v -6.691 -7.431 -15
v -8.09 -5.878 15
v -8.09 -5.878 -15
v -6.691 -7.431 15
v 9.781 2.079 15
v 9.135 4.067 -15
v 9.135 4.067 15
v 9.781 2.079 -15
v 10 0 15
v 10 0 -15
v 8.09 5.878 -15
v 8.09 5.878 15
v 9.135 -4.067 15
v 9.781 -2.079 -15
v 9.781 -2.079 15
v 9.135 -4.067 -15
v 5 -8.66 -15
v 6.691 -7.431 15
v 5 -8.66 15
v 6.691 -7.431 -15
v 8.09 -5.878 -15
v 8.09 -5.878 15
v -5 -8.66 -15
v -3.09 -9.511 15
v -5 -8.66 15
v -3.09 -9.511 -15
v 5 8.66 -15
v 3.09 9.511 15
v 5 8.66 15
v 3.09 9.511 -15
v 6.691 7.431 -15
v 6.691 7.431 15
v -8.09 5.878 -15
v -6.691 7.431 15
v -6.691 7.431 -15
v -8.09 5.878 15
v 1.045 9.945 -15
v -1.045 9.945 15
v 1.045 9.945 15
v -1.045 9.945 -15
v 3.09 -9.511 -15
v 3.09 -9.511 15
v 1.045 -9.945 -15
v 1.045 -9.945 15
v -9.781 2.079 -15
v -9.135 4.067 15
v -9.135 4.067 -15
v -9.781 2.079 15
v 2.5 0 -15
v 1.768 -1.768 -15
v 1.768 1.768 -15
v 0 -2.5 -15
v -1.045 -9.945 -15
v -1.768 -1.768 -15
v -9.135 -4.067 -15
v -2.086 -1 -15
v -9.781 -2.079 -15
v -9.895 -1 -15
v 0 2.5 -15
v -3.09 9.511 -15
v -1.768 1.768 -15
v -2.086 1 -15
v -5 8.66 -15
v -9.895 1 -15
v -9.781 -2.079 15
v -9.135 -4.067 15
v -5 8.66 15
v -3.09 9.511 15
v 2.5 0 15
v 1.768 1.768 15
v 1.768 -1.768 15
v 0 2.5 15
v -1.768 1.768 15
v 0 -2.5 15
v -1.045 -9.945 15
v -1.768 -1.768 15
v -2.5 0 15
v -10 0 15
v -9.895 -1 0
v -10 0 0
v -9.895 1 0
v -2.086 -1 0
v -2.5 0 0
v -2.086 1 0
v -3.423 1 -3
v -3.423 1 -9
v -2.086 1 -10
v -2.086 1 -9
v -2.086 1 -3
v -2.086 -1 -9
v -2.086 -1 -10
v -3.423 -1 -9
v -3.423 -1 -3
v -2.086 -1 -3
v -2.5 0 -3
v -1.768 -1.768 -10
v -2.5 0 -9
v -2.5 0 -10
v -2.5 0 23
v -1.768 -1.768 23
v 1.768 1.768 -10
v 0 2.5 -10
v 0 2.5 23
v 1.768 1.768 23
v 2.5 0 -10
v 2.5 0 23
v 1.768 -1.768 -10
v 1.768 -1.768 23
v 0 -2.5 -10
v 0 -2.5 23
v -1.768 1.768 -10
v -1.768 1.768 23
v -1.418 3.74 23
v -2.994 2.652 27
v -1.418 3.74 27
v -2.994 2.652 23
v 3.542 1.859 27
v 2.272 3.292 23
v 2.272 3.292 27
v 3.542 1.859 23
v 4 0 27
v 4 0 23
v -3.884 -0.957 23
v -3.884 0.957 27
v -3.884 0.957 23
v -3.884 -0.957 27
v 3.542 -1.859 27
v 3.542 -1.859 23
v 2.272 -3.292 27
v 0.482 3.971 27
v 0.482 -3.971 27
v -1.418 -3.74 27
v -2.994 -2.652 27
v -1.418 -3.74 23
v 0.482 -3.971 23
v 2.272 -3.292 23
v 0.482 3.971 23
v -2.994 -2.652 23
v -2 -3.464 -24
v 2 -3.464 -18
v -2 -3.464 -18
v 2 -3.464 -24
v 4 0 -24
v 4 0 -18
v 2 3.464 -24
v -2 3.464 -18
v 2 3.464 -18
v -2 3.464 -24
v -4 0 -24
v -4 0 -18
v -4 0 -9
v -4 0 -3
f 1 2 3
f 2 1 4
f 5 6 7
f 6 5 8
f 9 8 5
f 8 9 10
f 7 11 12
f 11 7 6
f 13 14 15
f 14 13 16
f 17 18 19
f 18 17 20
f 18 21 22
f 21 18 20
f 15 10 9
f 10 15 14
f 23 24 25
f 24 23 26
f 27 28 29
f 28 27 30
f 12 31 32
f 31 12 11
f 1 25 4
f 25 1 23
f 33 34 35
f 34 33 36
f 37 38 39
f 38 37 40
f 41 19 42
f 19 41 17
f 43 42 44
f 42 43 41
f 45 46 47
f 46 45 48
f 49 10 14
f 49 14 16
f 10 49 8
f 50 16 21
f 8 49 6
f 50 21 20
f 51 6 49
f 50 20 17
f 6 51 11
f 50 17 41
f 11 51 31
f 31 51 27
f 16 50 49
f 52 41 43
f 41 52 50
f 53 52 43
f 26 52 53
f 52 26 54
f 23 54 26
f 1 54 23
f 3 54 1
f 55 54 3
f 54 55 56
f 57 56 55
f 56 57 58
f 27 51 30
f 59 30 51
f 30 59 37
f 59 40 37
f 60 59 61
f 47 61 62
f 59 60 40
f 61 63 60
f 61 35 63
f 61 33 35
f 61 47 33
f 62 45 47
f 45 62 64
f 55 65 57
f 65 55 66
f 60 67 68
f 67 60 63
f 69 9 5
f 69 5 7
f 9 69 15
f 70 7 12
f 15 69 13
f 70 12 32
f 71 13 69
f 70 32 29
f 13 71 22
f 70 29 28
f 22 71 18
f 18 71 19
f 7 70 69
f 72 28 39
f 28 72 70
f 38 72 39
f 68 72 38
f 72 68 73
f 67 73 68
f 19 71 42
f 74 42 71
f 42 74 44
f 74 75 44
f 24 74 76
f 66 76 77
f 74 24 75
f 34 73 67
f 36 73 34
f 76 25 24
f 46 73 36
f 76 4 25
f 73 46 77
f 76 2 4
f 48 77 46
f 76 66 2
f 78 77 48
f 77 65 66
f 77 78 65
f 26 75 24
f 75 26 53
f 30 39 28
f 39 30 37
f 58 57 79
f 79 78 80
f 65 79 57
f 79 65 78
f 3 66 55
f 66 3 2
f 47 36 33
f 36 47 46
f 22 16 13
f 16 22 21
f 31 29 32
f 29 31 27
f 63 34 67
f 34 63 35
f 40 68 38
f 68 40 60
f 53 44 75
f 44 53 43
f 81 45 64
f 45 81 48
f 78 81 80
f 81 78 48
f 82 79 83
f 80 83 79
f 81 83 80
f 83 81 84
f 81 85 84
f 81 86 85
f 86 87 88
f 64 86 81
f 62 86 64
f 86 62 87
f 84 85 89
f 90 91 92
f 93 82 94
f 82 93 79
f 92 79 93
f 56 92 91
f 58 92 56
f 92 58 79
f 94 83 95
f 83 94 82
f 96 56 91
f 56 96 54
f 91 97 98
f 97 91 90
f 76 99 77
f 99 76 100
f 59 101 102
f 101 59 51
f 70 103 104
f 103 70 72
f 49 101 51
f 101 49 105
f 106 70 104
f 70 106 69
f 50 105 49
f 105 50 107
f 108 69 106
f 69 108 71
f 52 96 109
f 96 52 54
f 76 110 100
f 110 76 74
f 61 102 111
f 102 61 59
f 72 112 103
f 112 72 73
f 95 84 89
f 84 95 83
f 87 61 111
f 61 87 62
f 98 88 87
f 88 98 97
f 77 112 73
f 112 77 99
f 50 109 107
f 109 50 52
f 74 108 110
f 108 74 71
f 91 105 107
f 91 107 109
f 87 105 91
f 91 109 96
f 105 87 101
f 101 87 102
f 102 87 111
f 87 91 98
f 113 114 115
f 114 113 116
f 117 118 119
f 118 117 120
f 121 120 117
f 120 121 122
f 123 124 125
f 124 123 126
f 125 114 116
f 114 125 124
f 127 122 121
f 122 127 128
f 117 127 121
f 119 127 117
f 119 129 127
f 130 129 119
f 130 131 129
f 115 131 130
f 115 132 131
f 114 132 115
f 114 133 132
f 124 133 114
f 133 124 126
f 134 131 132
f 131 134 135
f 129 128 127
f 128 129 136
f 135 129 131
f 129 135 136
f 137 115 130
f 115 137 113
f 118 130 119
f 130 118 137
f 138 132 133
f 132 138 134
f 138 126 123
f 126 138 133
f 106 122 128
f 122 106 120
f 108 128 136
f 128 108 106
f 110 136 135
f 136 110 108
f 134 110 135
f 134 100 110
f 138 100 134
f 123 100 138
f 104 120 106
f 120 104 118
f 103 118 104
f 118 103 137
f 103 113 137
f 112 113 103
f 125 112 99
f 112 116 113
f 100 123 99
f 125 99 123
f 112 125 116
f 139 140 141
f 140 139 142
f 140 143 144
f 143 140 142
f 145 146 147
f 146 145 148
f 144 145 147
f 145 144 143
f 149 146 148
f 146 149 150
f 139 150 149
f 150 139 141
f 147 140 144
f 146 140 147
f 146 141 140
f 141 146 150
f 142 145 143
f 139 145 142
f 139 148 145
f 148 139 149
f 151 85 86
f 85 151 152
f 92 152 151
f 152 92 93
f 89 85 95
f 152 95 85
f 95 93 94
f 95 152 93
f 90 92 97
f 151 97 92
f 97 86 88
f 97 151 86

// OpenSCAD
// Module for the coupling shell
module coupling_shell() {
    difference() {
        // Main cylindrical body
        cylinder(h = 30, d = 20, center = true);
        
        // Slit in the middle
        translate([-12, 0, -15])
            cube([24, 2, 30], center = true);
        
        // Bolt holes
        translate([0, 0, -7.5])
            cylinder(h = 30, d = 5, center = true);
    }
}

// Module for a bolt
module bolt() {
    union() {
        // Main bolt shaft
        cylinder(h = 20, d = 5, center = true);
        // Bolt head
        translate([0, 0, 10])
            cylinder(h = 4, d = 8, center = true);
    }
}

// Module for a nut
module nut() {
    union() {
        // Hexagonal shape for nut
        translate([0, 0, -3])
            cylinder(h = 6, d = 8, center = true, $fn = 6);
        
        // Internal threaded hole (approximation)
        translate([0, 0, -3])
            cylinder(h = 6, d = 5, center = true);
    }
}

// Build the full coupling with nuts and bolts
module flexible_coupling() {
    // Coupling shell with a slit
    union() {
        coupling_shell();
        
        // Translating the bolts to the right positions
        translate([0, 0, 0])
            bolt();
        
        translate([0, 0, 15])
            bolt();
        
        // Corresponding nuts
        translate([0, 0, -18])
            nut();
        
        translate([0, 0, -3])
            nut();
    }
}

flexible_coupling();
